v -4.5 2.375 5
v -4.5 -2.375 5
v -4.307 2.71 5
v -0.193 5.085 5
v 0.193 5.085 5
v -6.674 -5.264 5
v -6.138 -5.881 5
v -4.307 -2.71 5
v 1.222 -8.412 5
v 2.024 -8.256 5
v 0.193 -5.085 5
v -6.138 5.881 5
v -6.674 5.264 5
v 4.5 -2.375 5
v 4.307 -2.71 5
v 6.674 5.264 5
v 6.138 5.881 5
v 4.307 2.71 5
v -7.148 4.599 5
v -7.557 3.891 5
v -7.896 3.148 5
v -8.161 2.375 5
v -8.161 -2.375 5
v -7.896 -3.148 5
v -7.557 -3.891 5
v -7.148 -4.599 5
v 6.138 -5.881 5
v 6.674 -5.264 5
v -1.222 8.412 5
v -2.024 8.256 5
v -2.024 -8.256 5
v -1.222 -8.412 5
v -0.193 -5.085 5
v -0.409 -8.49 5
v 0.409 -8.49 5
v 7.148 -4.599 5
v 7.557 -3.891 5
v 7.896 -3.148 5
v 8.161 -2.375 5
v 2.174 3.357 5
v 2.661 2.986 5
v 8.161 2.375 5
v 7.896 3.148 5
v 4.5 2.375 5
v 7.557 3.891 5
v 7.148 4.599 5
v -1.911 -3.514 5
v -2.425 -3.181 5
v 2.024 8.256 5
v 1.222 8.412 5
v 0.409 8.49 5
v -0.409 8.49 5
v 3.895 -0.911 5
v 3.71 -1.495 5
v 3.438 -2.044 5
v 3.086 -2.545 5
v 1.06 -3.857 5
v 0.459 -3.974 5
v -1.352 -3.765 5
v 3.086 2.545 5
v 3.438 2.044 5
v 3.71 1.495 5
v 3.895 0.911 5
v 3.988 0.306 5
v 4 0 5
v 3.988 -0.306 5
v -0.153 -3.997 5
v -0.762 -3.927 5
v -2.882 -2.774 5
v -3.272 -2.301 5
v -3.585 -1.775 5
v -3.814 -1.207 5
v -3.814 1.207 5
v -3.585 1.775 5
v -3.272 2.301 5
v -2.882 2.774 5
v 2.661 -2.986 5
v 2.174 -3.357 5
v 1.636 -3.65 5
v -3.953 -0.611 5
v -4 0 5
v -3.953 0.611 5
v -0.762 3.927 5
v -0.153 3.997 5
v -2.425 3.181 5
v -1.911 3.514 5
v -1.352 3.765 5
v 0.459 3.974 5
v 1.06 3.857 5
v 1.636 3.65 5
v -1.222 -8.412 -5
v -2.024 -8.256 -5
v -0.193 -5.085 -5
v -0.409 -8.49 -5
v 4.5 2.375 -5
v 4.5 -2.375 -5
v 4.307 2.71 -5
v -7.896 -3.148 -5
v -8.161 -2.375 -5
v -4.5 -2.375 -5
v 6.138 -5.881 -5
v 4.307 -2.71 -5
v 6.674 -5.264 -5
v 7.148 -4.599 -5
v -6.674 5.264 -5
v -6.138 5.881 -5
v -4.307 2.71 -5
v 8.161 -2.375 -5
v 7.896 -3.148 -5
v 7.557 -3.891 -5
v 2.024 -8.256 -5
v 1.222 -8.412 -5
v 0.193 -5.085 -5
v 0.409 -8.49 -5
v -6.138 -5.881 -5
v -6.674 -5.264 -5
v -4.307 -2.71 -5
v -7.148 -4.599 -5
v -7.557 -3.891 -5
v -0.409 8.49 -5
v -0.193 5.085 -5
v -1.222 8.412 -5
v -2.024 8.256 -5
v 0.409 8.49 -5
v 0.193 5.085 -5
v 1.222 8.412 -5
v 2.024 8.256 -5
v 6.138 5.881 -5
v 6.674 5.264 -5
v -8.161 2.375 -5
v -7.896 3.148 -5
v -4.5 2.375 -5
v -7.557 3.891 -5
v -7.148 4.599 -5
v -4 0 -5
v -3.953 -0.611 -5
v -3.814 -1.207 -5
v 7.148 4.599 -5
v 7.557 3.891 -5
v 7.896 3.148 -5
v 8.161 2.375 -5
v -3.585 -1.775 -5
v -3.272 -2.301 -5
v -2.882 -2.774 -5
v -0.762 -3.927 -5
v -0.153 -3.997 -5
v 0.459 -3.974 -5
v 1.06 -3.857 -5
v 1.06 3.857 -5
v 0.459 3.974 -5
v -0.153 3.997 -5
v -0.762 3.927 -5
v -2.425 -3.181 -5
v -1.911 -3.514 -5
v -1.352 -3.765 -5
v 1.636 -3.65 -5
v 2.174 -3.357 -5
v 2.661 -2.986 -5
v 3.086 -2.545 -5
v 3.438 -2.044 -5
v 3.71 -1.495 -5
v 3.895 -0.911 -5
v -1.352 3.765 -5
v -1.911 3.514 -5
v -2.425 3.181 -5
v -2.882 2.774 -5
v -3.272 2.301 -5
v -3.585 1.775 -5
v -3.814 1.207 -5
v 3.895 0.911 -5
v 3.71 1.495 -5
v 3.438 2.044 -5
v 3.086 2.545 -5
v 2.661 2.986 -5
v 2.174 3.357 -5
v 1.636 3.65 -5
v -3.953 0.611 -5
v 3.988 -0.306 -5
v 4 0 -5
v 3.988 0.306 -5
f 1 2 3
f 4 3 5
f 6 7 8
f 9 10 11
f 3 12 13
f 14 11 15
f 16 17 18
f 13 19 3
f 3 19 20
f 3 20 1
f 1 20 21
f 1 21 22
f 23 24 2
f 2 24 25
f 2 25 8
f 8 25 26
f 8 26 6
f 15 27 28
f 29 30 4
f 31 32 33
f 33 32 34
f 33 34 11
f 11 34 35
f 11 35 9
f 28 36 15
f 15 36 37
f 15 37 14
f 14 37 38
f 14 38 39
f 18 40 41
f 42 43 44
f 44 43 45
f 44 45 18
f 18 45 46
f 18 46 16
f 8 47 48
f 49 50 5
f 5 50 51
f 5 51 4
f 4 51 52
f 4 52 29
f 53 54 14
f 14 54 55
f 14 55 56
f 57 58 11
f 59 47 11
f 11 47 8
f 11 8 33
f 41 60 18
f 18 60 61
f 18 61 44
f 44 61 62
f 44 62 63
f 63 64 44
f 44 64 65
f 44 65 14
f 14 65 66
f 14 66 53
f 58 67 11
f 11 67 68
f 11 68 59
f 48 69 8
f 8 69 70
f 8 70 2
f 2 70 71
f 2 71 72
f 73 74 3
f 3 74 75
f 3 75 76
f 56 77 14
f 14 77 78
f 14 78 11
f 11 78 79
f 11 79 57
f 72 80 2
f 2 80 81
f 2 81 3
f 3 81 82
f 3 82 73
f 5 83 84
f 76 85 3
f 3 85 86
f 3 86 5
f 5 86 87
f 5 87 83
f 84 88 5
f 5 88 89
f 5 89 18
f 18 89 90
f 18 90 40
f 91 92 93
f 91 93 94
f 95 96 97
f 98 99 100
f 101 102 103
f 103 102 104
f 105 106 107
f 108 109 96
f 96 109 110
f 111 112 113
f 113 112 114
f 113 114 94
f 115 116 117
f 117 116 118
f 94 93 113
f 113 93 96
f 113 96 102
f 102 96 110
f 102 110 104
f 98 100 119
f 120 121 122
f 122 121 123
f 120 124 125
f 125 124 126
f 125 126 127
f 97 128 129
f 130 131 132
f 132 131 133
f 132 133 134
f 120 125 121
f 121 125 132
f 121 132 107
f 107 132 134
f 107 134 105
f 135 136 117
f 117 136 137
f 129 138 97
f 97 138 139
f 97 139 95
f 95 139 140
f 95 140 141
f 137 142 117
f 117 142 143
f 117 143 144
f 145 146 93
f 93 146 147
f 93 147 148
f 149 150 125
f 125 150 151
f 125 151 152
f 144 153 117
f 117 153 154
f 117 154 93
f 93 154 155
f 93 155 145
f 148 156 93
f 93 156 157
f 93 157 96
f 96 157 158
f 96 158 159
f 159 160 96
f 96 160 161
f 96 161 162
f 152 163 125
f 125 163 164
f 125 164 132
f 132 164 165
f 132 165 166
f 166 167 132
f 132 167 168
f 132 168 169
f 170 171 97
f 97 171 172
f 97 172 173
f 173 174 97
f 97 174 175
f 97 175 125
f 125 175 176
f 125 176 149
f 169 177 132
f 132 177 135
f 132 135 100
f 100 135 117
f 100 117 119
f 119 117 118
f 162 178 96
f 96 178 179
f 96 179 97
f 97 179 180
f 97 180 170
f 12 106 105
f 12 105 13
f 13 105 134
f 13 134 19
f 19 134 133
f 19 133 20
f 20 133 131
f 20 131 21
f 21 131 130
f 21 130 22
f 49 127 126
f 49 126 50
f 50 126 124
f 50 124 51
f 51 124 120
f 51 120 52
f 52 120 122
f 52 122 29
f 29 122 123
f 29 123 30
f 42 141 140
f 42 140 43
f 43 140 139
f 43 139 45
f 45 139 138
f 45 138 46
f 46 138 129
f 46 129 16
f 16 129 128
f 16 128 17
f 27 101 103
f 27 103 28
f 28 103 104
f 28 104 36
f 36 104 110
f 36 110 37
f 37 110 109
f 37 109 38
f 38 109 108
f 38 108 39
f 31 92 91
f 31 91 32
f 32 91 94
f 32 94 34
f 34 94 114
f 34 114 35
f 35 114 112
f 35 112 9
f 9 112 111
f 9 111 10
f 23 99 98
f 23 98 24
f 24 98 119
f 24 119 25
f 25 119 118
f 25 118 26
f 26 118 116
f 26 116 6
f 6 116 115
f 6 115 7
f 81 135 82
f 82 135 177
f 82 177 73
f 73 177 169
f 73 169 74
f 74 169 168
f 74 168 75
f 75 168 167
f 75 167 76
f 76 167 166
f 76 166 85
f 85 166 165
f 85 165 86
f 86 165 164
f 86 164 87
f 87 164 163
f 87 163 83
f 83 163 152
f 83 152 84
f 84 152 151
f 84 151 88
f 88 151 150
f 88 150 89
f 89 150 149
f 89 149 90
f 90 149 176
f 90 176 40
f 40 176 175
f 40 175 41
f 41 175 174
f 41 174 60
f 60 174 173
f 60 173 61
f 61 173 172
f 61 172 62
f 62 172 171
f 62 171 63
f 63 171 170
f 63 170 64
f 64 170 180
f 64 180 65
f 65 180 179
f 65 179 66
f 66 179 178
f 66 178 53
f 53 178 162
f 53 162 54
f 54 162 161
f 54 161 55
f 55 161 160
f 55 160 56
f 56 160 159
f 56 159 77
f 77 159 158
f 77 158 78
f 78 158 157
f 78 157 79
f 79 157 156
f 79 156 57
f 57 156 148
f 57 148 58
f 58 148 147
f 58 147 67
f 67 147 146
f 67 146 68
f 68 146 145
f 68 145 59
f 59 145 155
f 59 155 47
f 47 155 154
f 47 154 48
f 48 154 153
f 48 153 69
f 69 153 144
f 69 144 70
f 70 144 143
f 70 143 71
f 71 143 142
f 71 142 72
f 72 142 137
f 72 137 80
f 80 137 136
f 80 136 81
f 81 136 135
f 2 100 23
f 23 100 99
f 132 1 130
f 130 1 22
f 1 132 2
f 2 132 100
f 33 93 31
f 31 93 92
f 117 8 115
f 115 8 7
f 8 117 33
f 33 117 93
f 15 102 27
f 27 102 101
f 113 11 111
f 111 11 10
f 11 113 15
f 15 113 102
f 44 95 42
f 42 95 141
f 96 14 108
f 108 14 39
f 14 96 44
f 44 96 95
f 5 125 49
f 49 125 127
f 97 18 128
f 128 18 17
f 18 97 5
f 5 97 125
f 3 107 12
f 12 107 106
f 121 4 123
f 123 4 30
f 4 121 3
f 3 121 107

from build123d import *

# Parameters (mm, degrees)
SKETCH1_R           = 8.5
SKETCH1_R_2         = 4
BOSS_EXTRUDE1_DEPTH = 5
SKETCH2_W           = 4.75
SKETCH2_H           = 10
CUT_EXTRUDE3_DEPTH  = 4
CIRPATTERN1_COUNT   = 6


with BuildPart() as part:
    # Sketch1 → Boss-Extrude1 (new, symmetric)
    with BuildSketch(Plane.XY):
        Circle(SKETCH1_R)
        Circle(SKETCH1_R_2, mode=Mode.SUBTRACT)
    extrude(amount=BOSS_EXTRUDE1_DEPTH, both=True)

    # Sketch2 → Cut-Extrude3 (cut)
    with BuildSketch(Plane(origin=(-8.5, -17.193061184, 0), x_dir=(0, -1, 0), z_dir=(1, 0, 0))):
        with Locations((-17.193061184, 0)):
            Rectangle(SKETCH2_W, SKETCH2_H)
    cut_extrude3 = extrude(amount=CUT_EXTRUDE3_DEPTH, mode=Mode.SUBTRACT)

    # CirPattern1: Cut-Extrude3 ×6 about axis
    cirpattern1_axis = Axis((0, 0, 5), (0, 0, 1))
    for i in range(1, CIRPATTERN1_COUNT):
        add(cut_extrude3.rotate(cirpattern1_axis, i * 360 / CIRPATTERN1_COUNT), mode=Mode.SUBTRACT)


solid = part.part
